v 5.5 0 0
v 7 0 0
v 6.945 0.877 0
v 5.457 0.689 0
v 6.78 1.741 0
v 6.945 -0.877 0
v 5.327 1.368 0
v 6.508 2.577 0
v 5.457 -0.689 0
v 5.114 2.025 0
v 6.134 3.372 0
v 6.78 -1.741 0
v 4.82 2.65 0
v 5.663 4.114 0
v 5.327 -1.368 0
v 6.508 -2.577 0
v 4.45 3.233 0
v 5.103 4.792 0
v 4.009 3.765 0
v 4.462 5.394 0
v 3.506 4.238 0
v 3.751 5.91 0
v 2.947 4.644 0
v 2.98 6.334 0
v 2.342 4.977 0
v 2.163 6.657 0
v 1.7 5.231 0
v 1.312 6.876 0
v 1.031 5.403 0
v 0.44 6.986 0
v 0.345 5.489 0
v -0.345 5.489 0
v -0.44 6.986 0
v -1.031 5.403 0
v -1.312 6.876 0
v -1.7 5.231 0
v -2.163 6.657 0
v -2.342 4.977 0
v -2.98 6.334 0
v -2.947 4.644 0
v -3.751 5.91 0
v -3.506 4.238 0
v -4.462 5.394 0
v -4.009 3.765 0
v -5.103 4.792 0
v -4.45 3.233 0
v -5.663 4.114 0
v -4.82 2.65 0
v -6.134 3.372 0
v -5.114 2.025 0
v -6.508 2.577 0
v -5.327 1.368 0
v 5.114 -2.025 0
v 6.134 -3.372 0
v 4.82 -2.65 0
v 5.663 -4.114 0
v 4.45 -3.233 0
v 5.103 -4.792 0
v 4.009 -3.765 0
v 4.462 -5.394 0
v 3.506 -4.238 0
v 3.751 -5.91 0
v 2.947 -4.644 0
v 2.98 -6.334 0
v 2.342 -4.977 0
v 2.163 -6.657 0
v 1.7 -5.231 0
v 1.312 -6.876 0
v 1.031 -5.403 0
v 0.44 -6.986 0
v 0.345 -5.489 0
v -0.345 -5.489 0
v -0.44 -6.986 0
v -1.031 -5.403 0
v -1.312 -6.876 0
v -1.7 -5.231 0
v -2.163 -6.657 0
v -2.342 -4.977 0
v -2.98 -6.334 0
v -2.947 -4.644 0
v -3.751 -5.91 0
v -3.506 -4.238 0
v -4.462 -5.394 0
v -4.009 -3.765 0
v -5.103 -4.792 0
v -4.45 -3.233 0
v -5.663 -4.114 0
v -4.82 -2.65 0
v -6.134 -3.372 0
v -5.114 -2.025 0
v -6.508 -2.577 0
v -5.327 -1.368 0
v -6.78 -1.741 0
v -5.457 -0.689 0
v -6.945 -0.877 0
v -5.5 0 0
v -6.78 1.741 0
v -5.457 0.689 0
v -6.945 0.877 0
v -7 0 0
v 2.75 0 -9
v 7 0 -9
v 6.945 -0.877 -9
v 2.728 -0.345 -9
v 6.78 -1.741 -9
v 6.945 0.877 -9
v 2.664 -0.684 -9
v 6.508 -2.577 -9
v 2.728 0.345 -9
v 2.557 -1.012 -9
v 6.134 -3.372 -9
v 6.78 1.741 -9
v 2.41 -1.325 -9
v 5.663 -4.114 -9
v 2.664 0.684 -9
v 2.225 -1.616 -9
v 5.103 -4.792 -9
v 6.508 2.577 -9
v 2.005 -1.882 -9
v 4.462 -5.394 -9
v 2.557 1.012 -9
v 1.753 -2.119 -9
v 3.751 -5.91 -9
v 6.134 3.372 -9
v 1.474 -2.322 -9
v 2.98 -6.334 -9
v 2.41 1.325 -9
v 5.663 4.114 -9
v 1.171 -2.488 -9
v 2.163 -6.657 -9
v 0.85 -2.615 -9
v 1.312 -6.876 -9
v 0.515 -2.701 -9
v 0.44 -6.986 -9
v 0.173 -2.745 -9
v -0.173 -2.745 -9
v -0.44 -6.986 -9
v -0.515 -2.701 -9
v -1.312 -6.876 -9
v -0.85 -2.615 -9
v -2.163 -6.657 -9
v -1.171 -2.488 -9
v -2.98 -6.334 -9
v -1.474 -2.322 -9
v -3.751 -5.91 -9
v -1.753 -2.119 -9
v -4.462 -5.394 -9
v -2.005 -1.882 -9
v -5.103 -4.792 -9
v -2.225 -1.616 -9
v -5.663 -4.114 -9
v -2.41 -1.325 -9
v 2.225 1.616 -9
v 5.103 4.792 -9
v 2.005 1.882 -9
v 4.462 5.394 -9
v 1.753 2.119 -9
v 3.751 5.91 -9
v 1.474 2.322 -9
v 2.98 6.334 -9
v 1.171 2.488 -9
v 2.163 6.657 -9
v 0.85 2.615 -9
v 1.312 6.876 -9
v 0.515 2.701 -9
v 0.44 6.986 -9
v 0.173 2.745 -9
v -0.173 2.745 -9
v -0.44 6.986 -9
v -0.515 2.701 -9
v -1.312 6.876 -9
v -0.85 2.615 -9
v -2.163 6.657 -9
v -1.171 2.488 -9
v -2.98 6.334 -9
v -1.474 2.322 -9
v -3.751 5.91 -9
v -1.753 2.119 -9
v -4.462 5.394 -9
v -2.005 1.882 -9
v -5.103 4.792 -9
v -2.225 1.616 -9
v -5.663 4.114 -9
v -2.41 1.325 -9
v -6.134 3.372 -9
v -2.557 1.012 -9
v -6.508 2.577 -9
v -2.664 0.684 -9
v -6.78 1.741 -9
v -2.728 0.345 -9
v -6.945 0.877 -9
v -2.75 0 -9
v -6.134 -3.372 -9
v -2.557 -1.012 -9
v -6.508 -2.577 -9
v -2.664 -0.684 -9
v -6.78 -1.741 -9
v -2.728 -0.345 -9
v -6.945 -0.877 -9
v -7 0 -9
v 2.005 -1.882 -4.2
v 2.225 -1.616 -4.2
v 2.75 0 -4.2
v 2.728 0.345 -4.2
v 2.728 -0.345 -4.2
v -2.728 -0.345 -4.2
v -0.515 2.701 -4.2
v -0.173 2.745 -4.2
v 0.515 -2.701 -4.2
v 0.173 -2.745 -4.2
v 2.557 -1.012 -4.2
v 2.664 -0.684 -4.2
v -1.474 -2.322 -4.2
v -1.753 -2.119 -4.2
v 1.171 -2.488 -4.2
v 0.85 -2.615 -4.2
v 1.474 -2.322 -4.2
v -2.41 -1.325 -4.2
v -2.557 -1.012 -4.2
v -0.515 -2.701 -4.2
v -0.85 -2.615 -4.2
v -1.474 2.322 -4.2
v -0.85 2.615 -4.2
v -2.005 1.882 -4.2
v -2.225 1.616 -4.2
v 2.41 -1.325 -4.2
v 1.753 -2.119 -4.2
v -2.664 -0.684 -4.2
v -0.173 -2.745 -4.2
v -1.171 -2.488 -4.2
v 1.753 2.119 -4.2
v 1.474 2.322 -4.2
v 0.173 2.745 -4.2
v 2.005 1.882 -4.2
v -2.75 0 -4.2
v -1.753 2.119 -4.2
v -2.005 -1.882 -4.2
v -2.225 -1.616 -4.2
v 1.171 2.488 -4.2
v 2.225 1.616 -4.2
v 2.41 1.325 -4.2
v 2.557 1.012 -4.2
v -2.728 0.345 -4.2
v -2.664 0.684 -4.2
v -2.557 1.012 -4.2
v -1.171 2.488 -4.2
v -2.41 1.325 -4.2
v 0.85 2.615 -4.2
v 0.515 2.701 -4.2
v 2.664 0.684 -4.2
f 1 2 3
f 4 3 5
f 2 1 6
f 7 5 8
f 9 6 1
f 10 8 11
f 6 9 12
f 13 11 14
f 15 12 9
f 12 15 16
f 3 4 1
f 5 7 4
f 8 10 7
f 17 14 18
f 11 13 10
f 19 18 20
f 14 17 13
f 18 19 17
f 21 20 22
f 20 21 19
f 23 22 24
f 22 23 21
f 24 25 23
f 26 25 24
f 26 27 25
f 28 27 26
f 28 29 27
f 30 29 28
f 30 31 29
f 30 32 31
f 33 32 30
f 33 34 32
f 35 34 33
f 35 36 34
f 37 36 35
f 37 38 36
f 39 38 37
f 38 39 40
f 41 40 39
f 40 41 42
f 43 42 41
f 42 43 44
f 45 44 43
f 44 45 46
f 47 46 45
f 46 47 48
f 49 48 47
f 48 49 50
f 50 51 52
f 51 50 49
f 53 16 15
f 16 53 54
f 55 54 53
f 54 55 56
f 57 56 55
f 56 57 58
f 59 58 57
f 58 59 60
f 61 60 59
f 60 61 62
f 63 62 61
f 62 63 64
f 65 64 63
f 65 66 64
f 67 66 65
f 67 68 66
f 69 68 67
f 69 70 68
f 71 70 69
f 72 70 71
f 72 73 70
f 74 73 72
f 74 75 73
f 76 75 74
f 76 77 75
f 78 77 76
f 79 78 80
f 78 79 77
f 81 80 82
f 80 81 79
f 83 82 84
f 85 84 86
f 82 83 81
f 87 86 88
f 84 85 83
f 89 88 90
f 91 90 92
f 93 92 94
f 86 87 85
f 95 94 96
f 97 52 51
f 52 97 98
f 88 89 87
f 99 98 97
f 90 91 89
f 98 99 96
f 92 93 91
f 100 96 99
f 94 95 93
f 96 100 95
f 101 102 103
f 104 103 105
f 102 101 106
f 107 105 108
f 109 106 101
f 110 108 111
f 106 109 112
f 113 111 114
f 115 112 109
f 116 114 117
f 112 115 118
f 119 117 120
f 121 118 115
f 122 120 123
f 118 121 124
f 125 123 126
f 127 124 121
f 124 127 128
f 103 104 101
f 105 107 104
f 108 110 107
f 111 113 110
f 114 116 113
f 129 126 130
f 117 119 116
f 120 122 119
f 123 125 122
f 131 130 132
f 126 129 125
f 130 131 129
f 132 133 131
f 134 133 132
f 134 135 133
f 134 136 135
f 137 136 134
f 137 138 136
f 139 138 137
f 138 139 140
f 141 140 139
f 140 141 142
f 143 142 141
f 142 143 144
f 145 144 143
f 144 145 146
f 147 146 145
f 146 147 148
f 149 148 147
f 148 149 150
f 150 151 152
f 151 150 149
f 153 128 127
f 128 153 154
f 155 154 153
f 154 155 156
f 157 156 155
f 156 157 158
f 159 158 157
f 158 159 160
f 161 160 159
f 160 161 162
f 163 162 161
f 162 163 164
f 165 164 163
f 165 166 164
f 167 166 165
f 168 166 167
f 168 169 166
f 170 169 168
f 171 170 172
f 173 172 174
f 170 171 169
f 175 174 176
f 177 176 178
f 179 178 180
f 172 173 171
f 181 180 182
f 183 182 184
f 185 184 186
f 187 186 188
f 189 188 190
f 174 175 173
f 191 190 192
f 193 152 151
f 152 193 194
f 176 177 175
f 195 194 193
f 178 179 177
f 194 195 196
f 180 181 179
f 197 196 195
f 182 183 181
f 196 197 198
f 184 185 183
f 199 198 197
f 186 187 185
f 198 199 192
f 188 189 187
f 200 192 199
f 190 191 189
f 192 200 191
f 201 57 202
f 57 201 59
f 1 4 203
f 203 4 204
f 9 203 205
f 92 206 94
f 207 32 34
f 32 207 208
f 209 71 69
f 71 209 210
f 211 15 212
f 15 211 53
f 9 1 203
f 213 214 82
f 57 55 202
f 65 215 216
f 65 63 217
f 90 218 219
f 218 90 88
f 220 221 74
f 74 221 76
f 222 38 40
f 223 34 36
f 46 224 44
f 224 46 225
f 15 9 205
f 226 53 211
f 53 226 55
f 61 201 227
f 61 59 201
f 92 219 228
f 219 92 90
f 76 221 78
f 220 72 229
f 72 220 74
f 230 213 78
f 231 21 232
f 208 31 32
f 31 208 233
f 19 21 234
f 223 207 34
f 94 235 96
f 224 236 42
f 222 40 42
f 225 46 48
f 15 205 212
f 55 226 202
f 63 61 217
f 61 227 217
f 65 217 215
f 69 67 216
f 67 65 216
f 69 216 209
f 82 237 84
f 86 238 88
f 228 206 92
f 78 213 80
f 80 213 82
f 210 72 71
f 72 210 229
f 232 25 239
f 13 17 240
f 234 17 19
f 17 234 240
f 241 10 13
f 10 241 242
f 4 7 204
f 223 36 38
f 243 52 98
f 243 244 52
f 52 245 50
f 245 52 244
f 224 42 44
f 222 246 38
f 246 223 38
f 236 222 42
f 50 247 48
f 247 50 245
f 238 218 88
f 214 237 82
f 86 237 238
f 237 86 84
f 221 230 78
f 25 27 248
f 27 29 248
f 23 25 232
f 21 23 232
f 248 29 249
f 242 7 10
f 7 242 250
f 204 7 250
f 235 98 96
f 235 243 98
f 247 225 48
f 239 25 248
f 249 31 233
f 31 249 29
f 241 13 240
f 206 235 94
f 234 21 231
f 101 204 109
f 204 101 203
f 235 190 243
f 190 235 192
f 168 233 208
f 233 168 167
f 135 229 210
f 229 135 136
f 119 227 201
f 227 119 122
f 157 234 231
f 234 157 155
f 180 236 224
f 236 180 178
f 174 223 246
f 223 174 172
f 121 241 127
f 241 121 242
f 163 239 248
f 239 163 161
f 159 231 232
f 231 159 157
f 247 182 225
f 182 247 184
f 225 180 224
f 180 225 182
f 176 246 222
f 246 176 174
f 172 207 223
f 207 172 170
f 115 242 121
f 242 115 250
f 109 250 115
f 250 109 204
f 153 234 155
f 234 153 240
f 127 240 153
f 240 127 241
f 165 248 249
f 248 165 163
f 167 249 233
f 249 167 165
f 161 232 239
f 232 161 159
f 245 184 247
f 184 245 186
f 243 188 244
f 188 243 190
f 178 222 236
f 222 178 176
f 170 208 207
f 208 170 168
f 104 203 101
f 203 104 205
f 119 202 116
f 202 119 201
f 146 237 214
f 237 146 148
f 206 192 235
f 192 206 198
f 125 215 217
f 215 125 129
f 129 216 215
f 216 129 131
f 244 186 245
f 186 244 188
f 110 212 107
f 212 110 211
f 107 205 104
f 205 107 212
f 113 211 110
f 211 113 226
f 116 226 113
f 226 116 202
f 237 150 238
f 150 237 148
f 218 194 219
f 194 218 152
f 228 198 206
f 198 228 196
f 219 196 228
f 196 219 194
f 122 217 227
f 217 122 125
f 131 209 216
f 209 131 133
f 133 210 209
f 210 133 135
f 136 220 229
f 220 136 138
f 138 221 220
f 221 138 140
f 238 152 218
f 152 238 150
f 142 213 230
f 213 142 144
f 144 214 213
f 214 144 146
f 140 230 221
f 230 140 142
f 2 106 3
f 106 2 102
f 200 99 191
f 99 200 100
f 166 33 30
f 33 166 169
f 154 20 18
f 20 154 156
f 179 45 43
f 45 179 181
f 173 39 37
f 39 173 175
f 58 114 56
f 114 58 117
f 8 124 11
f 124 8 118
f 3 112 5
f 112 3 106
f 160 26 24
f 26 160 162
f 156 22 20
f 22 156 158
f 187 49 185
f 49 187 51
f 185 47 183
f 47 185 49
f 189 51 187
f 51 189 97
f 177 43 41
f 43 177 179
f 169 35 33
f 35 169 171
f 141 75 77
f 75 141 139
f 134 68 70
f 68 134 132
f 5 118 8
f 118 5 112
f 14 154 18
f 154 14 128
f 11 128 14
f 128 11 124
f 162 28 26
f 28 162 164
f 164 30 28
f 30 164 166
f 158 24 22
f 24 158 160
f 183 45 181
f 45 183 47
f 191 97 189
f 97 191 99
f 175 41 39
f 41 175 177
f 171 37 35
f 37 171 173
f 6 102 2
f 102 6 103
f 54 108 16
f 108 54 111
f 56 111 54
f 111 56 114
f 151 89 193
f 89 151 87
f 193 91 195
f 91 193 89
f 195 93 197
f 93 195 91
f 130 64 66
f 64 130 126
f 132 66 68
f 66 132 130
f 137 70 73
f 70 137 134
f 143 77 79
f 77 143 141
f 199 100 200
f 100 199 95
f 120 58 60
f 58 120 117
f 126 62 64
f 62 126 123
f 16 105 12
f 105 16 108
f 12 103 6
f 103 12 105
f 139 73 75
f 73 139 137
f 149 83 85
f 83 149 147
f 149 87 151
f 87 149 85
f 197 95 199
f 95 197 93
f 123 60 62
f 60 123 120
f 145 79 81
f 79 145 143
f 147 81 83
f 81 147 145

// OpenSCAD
$fn = 50;


difference() {
	union() {
		translate(v = [0, 0, -9.0000000000]) {
			cylinder(h = 9, r = 7.0000000000);
		}
		cylinder(h = 0, r = 13.0000000000);
	}
	union() {
		translate(v = [0, 0, 0]) {
			rotate(a = [0, 0, 0]) {
				difference() {
					union() {
						#translate(v = [0, 0, -9.0000000000]) {
							cylinder(h = 9, r = 2.2500000000);
						}
						#translate(v = [0, 0, -4.2000000000]) {
							cylinder(h = 4.2000000000, r1 = 2.7500000000, r2 = 5.5000000000);
						}
						#translate(v = [0, 0, -9.0000000000]) {
							cylinder(h = 9, r = 2.7500000000);
						}
						#translate(v = [0, 0, -9.0000000000]) {
							cylinder(h = 9, r = 2.2500000000);
						}
					}
					union();
				}
			}
		}
	}
}
